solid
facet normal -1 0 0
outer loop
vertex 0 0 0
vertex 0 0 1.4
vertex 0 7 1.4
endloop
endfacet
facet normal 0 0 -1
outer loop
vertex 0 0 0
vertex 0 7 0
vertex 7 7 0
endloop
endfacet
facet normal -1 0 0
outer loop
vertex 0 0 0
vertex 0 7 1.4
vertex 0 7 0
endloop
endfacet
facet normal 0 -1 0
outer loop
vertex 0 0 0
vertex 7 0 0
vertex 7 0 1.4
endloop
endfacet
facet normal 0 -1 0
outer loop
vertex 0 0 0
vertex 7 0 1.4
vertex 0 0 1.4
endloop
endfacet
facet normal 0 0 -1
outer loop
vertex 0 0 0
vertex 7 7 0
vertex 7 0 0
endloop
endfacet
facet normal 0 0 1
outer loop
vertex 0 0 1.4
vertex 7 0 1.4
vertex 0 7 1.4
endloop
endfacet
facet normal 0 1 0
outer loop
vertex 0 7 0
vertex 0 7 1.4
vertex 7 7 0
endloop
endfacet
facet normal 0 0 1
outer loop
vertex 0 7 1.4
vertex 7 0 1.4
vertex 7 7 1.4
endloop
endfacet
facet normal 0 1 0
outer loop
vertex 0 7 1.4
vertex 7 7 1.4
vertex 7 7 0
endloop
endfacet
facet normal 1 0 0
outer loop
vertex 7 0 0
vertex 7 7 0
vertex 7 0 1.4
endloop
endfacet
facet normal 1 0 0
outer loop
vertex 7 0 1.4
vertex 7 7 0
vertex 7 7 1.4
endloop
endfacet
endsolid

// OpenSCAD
/* Warning, this is a very basic generator with a lot of approximation 
input data : [LQFP, CAA, 7x7x1.4mm, 48, , A, C04-01078A]
generated by com.zoubworld.electronics.cad.model3d.Basic
Date : Sun Feb 15 10:50:49 CET 2026
*/

//body
color("black")
translate([0,0,0])
cube([7.0,7.0,1.4], center=false);
